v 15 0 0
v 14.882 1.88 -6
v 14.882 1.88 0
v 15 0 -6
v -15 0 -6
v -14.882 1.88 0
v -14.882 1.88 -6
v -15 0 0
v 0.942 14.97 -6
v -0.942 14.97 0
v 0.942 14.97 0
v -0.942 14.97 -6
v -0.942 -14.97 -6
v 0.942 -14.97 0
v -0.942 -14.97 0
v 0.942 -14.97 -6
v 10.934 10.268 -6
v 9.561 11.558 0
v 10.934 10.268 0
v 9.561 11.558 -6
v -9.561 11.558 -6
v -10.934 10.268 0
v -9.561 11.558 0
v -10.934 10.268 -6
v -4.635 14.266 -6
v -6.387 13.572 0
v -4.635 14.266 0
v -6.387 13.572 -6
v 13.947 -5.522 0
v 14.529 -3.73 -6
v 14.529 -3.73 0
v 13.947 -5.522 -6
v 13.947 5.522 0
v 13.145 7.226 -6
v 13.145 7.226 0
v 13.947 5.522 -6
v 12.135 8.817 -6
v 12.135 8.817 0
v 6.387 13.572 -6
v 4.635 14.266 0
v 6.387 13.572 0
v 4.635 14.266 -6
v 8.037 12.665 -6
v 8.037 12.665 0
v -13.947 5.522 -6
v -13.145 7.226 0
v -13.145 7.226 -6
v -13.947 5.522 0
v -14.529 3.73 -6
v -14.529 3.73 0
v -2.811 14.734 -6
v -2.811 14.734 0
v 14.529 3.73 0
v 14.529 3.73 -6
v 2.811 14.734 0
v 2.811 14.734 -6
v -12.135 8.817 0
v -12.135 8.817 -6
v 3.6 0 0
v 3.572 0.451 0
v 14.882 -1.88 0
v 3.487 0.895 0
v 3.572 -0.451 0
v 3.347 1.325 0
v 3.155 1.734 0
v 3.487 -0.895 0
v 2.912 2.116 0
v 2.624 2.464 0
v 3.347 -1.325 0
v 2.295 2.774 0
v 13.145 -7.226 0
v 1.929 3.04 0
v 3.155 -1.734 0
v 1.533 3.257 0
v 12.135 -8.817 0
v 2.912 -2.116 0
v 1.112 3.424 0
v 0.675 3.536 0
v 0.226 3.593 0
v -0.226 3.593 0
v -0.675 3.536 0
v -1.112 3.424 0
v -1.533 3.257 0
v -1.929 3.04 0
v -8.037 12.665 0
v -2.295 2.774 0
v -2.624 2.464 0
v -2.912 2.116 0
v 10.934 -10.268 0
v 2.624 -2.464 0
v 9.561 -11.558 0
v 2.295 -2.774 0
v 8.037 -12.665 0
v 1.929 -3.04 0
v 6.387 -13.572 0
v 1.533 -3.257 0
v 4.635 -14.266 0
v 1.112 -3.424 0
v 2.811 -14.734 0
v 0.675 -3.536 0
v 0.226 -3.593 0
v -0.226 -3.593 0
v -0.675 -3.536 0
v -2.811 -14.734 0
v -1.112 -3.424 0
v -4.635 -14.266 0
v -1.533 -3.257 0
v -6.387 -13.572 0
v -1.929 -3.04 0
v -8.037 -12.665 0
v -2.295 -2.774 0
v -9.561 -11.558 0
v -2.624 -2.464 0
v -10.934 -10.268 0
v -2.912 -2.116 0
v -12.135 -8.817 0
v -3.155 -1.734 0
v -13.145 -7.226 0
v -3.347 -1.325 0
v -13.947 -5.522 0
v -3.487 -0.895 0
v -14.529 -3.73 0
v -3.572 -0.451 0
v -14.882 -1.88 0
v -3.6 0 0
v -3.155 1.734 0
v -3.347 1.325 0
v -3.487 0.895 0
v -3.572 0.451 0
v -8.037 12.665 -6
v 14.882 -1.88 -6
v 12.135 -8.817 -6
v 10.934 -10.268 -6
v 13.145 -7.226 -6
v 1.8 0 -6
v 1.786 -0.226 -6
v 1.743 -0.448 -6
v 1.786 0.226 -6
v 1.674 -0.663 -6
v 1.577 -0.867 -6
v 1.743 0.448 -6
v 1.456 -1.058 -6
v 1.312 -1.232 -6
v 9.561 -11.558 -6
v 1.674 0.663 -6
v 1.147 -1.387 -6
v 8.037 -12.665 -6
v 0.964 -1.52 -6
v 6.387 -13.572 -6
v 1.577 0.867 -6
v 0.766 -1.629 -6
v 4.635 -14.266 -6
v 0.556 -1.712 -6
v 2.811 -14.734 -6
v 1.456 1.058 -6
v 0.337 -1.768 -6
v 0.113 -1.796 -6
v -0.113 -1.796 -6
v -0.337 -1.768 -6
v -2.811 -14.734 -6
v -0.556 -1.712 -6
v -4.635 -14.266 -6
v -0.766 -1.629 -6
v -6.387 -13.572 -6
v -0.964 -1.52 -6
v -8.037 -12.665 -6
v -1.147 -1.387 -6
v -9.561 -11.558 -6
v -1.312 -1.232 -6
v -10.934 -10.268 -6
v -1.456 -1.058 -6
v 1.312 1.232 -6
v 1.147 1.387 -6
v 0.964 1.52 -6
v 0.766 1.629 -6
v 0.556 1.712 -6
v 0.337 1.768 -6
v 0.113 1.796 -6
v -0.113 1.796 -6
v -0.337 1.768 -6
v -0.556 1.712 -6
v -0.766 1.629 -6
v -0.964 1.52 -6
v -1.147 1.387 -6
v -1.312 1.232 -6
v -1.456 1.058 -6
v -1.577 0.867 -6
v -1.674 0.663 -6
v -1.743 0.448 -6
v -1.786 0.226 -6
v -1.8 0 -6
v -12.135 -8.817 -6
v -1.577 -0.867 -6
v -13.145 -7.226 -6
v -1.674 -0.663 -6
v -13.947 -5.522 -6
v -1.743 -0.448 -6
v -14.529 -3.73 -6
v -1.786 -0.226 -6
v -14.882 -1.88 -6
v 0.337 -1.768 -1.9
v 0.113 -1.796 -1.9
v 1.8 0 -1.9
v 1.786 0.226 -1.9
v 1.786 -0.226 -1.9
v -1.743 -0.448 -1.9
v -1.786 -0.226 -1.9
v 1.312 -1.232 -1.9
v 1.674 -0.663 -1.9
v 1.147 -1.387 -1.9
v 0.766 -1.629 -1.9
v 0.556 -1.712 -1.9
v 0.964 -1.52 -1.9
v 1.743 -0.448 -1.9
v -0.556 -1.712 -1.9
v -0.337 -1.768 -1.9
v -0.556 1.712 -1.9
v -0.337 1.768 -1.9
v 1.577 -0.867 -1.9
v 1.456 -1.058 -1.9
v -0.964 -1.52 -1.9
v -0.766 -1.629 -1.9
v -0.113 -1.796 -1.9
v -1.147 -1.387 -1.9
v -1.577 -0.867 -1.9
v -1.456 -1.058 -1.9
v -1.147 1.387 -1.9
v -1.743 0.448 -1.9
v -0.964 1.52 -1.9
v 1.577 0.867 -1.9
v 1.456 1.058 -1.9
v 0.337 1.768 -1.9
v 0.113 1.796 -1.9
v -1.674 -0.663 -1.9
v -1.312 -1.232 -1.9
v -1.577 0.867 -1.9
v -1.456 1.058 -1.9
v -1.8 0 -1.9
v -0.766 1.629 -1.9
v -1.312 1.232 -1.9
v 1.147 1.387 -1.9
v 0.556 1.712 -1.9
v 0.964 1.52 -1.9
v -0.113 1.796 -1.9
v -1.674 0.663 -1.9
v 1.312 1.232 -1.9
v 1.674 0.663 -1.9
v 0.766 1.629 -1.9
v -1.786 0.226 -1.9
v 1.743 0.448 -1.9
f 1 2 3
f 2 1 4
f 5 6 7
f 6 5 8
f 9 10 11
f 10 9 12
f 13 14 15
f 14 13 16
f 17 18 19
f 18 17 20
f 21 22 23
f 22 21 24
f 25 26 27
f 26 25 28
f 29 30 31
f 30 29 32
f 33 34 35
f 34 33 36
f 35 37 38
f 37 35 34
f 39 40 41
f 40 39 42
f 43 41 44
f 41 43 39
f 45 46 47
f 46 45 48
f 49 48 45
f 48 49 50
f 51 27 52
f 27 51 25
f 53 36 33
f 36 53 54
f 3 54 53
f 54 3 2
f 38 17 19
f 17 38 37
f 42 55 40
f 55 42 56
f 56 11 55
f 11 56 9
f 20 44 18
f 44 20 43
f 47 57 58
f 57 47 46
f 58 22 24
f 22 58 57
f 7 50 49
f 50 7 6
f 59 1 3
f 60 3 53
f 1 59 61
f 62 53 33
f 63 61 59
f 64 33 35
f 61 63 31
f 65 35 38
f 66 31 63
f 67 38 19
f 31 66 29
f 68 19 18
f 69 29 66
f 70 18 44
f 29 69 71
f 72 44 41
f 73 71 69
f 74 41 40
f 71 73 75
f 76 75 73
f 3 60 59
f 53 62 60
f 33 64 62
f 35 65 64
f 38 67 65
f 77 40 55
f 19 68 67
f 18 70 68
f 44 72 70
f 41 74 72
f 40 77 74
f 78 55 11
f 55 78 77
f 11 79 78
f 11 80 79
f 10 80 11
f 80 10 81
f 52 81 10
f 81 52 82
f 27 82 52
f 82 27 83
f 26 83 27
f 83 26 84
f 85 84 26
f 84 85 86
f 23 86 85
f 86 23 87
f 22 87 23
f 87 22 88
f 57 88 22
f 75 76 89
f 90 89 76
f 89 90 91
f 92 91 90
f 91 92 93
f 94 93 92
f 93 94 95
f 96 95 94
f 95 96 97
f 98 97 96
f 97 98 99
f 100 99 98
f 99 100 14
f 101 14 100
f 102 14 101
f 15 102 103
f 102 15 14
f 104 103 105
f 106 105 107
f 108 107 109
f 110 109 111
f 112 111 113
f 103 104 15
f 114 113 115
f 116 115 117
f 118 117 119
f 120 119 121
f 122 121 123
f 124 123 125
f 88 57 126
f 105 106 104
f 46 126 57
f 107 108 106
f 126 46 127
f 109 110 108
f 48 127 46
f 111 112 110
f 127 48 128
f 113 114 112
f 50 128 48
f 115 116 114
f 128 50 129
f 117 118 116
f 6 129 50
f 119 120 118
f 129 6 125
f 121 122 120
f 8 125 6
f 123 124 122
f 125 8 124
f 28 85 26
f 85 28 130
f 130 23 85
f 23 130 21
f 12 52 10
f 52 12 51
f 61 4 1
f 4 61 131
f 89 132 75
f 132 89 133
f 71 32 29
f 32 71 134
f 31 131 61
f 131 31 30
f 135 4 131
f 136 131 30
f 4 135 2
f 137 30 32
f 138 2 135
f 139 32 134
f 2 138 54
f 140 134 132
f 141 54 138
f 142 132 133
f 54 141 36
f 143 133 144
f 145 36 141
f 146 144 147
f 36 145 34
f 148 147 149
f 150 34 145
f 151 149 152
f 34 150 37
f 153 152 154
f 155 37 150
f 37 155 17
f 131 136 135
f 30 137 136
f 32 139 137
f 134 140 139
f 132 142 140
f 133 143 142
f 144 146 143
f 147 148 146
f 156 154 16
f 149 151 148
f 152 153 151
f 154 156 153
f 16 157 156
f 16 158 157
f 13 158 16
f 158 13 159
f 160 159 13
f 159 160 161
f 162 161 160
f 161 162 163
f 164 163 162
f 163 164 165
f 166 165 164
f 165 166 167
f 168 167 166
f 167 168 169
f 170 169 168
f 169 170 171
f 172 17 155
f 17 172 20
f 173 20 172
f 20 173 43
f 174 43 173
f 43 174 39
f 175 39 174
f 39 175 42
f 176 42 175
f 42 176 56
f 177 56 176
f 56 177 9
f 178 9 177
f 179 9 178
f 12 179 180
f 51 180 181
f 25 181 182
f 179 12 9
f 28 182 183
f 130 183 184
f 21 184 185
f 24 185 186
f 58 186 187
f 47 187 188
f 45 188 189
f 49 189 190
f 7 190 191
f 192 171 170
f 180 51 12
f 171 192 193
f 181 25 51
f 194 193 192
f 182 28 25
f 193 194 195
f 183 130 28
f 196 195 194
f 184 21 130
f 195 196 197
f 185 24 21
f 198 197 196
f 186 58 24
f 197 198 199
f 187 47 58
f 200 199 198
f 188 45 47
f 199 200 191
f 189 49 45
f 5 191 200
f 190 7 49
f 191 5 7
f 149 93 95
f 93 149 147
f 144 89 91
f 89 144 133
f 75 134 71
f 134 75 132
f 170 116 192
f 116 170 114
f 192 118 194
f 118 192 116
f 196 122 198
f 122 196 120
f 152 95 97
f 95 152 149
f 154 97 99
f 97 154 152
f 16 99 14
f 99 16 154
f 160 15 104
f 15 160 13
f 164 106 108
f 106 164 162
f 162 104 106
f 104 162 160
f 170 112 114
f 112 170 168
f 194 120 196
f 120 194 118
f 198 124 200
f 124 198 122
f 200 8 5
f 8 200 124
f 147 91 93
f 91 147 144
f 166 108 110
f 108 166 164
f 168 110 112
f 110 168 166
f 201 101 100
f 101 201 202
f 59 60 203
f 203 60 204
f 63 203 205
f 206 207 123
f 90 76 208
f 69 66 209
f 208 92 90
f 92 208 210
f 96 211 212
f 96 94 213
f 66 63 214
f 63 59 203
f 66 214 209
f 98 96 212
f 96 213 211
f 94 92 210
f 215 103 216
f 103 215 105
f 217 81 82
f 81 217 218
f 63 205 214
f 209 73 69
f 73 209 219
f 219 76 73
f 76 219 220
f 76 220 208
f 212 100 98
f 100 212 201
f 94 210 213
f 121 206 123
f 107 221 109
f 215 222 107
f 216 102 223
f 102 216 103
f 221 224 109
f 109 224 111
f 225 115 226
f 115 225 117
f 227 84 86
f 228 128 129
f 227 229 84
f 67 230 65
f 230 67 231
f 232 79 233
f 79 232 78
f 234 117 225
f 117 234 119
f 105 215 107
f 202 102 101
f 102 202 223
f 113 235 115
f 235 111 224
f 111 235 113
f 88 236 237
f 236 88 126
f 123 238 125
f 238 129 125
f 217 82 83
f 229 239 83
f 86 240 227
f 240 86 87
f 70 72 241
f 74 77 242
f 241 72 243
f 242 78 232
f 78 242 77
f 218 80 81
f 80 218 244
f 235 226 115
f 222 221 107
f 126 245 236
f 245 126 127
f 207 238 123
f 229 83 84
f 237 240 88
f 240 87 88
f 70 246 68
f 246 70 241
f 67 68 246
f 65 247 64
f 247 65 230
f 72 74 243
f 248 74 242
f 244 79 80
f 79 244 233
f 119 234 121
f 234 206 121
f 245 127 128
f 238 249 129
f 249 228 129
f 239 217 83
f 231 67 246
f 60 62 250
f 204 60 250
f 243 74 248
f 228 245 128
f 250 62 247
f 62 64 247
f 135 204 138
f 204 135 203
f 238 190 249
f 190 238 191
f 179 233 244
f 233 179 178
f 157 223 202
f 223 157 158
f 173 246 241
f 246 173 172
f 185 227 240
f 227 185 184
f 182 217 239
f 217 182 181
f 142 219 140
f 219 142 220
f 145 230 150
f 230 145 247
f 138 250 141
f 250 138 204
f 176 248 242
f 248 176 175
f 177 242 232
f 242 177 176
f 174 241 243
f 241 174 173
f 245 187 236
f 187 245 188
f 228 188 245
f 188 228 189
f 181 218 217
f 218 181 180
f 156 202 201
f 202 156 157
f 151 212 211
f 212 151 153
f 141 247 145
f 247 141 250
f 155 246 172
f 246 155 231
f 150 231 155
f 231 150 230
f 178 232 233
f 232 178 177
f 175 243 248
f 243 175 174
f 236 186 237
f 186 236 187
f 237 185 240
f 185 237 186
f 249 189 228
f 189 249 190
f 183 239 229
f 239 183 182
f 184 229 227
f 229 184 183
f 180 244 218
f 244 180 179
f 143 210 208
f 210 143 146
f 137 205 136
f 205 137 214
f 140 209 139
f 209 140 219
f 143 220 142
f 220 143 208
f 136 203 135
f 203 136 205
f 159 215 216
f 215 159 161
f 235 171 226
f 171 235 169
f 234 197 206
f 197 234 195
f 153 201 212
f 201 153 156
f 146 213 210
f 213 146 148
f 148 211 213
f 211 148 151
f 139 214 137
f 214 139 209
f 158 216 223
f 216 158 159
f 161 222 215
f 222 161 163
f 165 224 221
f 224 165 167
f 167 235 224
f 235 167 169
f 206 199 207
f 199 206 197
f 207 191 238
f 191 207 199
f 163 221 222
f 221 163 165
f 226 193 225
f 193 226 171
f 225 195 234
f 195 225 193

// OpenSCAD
$fn = 50;


difference() {
	union() {
		translate(v = [0, 0, -6.0000000000]) {
			cylinder(h = 6, r = 15.0000000000);
		}
		translate(v = [0, 0, -6.0000000000]) {
			cylinder(h = 6, r = 2.8750000000);
		}
	}
	union() {
		translate(v = [0, 0, 0]) {
			rotate(a = [0, 0, 0]) {
				difference() {
					union() {
						translate(v = [0, 0, -6.0000000000]) {
							cylinder(h = 6, r = 1.5000000000);
						}
						translate(v = [0, 0, -1.9000000000]) {
							cylinder(h = 1.9000000000, r1 = 1.8000000000, r2 = 3.6000000000);
						}
						translate(v = [0, 0, -6.0000000000]) {
							cylinder(h = 6, r = 1.8000000000);
						}
						translate(v = [0, 0, -6.0000000000]) {
							cylinder(h = 6, r = 1.5000000000);
						}
					}
					union();
				}
			}
		}
	}
}
